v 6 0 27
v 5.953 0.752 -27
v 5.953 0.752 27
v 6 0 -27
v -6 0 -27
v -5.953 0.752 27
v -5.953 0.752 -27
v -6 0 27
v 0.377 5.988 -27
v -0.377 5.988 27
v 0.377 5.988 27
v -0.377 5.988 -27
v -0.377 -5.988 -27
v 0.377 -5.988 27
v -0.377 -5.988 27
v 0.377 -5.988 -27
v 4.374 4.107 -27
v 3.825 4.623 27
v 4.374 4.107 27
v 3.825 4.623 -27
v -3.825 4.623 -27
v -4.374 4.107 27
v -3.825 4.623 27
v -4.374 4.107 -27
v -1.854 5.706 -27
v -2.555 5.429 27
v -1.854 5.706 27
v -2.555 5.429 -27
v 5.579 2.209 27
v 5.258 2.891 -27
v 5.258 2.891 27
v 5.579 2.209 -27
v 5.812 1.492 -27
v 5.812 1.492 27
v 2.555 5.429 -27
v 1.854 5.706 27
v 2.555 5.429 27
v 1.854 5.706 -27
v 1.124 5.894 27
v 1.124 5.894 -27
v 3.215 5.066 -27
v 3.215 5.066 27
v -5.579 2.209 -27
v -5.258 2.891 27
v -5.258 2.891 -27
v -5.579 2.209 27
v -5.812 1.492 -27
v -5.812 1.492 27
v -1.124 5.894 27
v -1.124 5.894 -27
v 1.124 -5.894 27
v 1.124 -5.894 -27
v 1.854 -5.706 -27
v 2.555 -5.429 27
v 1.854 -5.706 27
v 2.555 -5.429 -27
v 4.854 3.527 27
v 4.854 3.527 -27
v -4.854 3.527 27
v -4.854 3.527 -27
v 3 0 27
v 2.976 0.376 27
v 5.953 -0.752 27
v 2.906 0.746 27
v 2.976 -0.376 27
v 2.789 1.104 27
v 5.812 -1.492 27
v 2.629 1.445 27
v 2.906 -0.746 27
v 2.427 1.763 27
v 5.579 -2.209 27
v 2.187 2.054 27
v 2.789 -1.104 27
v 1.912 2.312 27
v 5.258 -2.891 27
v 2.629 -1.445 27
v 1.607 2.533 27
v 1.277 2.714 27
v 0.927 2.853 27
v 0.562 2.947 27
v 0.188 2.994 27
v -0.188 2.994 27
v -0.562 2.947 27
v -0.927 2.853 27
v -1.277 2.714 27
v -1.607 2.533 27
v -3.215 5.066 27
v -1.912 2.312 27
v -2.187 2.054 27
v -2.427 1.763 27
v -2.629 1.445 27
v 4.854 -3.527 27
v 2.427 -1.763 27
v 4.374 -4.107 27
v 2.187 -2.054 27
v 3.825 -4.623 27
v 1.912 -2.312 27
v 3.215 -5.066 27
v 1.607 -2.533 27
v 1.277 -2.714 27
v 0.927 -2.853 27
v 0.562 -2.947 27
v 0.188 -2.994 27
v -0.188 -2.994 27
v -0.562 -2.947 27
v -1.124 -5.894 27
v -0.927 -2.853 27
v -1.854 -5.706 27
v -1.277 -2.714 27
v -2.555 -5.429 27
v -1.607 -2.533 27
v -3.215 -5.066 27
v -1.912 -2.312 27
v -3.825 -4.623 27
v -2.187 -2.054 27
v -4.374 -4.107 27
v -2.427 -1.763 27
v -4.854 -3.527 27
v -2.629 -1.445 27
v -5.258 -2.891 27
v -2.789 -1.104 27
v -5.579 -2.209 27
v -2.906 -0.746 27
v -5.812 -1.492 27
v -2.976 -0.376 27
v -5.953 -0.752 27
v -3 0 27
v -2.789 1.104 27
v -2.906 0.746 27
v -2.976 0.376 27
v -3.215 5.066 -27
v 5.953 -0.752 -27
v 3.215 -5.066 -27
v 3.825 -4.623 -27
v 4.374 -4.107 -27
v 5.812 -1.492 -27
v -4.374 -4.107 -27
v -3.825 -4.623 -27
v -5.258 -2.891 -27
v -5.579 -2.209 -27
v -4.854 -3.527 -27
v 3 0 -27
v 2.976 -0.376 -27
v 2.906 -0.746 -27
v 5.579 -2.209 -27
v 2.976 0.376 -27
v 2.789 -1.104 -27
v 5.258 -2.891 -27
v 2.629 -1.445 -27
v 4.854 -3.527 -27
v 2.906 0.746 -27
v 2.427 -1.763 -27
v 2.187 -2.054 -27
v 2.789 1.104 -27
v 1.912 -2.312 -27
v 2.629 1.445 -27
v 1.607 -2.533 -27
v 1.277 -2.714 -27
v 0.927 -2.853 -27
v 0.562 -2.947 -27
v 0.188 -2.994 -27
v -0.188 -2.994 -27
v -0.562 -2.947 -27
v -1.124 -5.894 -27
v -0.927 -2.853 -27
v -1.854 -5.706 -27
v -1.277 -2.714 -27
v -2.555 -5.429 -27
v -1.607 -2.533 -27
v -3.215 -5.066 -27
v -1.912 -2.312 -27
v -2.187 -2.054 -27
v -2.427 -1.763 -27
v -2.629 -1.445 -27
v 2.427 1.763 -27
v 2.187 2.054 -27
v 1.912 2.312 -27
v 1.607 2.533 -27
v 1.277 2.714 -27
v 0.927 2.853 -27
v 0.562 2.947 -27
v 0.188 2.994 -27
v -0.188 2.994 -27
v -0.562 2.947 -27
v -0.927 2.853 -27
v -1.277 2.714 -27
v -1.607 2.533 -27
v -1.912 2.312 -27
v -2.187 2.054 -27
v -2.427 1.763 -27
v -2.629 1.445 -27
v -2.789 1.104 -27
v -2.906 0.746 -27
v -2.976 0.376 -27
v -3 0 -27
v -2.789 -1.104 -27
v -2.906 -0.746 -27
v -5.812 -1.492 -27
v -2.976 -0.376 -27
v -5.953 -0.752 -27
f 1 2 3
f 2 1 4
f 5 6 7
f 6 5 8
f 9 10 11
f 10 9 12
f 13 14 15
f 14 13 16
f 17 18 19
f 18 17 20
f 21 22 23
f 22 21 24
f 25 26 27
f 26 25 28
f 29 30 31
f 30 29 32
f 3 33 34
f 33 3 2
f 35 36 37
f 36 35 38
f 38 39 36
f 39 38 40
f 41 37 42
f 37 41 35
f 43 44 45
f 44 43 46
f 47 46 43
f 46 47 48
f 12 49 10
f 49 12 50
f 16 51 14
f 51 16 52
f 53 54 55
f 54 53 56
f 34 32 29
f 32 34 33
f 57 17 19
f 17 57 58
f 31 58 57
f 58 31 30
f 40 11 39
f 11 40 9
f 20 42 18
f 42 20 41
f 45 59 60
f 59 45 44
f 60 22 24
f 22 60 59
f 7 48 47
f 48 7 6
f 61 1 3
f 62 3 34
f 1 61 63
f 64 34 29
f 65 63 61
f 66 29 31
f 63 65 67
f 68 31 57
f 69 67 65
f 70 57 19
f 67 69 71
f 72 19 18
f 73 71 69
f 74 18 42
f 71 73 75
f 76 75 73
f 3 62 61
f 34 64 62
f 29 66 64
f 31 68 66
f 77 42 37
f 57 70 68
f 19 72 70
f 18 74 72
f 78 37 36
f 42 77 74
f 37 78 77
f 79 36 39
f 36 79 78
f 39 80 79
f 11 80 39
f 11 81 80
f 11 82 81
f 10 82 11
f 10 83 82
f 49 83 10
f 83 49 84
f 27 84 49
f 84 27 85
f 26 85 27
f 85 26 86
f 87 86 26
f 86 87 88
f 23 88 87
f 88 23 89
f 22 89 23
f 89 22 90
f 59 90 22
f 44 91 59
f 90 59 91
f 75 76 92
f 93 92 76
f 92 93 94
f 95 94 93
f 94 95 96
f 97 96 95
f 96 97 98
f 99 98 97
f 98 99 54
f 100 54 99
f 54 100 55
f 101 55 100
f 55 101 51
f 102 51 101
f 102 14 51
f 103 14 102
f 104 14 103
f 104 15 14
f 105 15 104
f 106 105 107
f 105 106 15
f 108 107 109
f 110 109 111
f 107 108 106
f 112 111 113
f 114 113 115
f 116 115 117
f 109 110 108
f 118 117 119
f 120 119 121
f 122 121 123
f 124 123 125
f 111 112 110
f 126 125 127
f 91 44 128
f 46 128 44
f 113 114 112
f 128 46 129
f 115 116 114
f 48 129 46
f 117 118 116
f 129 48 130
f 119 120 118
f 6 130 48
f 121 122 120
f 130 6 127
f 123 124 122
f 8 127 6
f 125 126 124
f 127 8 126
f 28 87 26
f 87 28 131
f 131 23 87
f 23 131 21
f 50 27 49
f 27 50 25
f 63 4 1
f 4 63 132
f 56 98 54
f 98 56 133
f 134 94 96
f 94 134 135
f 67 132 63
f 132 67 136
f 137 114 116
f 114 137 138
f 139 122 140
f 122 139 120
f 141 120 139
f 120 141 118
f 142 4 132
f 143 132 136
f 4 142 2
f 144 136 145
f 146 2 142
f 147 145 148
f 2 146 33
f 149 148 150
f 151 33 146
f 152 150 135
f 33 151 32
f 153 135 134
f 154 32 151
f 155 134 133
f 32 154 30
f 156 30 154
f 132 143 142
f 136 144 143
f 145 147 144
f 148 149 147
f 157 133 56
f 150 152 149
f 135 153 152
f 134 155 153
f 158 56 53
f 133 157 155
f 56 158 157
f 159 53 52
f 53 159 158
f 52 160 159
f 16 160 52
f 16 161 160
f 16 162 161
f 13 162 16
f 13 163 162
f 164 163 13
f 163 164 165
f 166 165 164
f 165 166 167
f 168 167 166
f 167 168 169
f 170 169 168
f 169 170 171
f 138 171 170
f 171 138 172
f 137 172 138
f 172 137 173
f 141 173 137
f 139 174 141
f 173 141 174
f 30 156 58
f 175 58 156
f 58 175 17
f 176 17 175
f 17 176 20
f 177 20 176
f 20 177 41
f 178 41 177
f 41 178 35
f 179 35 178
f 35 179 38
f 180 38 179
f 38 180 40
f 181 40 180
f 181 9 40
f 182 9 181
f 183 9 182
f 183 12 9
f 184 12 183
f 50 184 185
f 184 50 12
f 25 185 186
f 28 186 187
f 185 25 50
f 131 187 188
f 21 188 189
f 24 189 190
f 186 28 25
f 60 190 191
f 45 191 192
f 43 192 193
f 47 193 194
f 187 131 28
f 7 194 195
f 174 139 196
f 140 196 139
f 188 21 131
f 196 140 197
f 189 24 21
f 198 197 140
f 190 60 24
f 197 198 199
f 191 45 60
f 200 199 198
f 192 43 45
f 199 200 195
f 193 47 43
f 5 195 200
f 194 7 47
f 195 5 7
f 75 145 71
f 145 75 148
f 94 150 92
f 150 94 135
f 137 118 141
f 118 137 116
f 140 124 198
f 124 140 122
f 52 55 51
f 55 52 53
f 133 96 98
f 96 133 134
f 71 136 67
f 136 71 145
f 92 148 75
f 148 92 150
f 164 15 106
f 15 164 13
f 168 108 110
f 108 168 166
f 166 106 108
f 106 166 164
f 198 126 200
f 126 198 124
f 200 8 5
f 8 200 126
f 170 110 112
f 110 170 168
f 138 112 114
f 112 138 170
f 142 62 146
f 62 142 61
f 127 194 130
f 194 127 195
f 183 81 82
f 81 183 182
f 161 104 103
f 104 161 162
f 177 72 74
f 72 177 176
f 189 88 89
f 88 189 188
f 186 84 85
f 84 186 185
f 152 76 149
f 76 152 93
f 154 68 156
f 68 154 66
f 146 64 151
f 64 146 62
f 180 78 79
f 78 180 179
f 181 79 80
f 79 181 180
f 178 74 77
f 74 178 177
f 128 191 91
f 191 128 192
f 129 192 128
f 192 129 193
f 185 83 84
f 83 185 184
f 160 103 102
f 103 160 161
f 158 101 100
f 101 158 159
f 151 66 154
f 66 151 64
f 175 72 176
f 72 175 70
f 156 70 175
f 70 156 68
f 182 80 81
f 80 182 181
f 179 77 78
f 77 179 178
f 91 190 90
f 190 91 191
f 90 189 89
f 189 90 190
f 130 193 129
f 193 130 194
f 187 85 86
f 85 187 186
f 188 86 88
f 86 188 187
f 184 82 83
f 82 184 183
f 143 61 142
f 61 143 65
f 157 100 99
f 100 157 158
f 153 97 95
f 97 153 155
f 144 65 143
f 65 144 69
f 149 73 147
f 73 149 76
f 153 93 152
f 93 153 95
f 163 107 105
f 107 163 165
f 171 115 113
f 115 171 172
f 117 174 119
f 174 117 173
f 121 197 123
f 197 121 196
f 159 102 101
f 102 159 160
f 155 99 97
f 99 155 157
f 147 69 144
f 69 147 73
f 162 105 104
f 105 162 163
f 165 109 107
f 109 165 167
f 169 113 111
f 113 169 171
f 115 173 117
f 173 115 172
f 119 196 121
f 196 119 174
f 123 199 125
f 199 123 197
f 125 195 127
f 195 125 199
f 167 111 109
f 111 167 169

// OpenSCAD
$fn = 50;


difference() {
	union() {
		translate(v = [0, 0, -27.0000000000]) {
			cylinder(h = 54, r = 6.0000000000);
		}
	}
	union() {
		translate(v = [0, 0, -100.0000000000]) {
			cylinder(h = 200, r = 3);
		}
	}
}
